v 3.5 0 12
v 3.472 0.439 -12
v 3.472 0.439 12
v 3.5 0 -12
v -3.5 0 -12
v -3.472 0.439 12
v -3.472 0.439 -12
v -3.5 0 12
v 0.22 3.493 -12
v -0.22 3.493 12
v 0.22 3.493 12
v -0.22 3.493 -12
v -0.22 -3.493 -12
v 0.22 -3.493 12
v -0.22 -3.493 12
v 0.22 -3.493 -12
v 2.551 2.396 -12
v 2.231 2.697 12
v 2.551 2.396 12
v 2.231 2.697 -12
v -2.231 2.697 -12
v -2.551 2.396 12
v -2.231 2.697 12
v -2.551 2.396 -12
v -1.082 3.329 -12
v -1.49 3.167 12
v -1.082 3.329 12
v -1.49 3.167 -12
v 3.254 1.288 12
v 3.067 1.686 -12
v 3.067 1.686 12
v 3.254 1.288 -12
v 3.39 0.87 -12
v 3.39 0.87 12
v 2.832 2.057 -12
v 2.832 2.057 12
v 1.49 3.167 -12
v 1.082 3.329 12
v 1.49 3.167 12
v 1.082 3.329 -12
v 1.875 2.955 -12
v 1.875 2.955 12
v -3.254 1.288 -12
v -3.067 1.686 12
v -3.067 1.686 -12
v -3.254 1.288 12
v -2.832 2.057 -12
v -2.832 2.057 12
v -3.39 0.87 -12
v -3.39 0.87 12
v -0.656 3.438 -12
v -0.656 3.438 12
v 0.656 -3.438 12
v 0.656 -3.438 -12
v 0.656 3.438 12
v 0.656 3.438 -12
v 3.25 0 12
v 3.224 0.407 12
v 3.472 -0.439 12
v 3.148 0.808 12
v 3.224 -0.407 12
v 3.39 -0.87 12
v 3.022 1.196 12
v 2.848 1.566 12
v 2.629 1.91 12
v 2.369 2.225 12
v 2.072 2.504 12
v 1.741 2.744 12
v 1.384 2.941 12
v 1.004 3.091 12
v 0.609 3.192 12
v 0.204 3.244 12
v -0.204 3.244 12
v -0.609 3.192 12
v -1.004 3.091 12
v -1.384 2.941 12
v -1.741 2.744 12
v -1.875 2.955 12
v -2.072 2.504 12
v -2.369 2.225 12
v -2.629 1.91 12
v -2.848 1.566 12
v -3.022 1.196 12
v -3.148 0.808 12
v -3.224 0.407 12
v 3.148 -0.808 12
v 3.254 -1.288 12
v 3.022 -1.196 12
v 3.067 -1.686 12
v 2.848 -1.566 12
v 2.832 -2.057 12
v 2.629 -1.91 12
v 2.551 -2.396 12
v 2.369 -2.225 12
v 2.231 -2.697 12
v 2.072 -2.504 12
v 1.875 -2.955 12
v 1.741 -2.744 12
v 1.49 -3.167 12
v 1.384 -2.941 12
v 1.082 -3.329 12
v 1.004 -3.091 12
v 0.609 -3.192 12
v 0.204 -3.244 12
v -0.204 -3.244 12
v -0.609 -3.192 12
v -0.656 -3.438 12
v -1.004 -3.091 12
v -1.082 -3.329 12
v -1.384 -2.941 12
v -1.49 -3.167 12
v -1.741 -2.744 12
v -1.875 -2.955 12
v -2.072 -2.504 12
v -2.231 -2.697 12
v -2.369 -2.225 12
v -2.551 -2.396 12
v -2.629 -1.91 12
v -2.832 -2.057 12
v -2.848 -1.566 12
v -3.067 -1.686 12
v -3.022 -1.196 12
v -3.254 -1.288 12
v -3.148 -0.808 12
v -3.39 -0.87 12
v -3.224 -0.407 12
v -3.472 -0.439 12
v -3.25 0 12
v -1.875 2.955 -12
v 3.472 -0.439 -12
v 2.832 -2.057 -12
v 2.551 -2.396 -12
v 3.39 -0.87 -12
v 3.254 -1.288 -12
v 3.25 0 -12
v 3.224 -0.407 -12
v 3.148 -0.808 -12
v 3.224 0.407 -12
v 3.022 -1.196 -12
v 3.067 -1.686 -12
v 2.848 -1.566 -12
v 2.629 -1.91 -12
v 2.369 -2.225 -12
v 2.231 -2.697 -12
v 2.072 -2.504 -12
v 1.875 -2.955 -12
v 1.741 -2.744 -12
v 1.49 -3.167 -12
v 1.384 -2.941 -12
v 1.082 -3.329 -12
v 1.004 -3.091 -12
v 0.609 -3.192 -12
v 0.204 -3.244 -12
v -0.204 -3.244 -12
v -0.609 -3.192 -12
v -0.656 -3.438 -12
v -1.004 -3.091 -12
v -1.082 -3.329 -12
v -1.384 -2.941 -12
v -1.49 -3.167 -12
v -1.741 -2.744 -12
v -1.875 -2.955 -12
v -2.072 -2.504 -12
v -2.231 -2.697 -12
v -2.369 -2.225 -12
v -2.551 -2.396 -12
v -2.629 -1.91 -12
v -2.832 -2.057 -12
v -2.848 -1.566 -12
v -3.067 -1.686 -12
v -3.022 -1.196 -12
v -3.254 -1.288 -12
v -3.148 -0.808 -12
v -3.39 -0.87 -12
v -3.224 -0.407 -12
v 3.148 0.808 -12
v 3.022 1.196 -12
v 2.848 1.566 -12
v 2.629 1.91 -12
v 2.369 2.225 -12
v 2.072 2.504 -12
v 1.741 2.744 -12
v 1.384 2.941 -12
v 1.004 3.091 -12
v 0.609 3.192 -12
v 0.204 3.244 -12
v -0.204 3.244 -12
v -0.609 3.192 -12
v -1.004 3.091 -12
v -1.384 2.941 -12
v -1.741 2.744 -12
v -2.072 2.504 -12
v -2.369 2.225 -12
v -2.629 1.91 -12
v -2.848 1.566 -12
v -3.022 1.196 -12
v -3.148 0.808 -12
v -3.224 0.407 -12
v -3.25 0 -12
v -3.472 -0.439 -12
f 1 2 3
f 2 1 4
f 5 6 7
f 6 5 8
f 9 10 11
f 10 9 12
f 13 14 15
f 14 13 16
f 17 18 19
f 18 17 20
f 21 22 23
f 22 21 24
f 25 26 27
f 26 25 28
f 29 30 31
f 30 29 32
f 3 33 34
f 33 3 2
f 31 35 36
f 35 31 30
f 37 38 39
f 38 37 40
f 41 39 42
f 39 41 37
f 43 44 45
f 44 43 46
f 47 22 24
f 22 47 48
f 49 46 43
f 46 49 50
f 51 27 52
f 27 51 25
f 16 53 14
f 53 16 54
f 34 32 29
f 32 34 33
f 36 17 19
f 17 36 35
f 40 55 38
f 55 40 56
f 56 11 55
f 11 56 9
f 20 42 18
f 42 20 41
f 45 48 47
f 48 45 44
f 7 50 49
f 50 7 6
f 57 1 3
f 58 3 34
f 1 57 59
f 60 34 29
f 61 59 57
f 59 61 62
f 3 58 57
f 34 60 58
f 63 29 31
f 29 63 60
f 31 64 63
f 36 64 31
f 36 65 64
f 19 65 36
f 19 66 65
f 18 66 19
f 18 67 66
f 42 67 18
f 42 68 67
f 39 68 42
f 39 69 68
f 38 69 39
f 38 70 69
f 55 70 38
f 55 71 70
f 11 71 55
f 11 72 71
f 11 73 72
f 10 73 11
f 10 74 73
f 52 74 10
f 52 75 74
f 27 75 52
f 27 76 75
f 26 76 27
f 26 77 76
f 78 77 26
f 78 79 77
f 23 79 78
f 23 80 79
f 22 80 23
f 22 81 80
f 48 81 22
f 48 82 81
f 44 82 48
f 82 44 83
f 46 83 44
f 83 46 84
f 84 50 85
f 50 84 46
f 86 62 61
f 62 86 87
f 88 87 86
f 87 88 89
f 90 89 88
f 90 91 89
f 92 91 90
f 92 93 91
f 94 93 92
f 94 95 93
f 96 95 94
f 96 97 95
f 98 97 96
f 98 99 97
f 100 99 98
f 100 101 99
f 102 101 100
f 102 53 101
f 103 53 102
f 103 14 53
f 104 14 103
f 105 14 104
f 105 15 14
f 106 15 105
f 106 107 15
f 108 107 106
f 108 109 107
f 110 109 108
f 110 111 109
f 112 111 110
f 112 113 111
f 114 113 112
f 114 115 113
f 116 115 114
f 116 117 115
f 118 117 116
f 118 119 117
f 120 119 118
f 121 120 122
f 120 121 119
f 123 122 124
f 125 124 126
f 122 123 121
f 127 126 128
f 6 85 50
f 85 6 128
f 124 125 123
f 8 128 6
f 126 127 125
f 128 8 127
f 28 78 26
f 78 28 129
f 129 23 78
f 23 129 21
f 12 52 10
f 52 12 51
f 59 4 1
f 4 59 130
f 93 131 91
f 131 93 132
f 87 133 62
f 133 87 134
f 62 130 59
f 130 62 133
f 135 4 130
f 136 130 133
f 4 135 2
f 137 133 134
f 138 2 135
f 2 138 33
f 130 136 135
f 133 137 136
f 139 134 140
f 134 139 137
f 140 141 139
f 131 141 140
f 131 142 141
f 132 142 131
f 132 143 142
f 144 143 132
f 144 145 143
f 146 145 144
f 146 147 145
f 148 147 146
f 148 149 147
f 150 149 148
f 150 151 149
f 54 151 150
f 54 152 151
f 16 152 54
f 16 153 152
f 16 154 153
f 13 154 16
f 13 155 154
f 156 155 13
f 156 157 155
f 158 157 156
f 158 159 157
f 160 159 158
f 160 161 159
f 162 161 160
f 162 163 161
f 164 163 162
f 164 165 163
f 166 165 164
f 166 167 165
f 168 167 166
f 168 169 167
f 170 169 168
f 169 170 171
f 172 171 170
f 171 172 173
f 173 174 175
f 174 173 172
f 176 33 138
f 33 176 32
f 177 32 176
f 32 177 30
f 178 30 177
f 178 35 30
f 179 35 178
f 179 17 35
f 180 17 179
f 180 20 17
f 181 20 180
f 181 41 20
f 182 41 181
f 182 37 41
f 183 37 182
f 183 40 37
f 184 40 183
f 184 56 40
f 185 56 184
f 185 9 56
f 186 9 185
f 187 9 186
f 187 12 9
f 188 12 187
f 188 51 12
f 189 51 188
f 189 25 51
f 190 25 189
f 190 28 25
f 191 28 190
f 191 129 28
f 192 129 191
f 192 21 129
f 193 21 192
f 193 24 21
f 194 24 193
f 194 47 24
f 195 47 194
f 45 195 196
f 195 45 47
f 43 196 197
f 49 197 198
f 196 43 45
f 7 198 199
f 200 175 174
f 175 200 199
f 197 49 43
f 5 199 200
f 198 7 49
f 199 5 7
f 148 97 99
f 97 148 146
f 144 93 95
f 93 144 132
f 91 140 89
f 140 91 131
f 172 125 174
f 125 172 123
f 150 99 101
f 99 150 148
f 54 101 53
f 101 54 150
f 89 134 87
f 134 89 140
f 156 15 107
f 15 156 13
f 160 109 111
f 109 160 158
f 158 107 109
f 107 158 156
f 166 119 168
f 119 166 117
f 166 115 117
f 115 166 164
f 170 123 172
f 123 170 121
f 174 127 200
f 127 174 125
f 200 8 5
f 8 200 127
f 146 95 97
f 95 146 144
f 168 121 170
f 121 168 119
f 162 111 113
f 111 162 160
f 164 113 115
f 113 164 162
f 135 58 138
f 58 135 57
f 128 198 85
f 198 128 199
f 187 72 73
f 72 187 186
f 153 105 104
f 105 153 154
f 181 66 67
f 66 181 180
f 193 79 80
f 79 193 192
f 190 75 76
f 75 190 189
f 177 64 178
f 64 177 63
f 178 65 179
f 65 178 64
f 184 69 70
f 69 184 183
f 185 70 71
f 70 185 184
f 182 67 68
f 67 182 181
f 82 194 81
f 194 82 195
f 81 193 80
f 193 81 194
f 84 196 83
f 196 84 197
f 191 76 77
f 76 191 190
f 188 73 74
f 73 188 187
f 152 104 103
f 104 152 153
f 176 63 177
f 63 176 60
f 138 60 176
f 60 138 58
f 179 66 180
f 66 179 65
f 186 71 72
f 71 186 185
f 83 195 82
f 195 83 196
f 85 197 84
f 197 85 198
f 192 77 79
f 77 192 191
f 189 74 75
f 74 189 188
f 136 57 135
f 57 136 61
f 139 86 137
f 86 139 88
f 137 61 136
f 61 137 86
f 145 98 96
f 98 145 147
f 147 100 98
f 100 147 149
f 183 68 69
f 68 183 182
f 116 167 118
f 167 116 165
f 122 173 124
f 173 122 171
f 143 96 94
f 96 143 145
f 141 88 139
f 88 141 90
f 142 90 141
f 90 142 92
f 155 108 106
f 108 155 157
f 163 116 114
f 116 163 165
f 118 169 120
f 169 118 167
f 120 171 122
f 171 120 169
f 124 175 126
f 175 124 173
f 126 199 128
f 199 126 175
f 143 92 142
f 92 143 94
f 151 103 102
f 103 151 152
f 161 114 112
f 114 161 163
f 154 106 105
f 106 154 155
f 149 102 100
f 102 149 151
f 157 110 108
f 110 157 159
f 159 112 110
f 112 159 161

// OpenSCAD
$fn = 50;


difference() {
	union() {
		translate(v = [0, 0, -12.0000000000]) {
			cylinder(h = 24, r = 3.5000000000);
		}
	}
	union() {
		translate(v = [0, 0, -100.0000000000]) {
			cylinder(h = 200, r = 3.2500000000);
		}
	}
}
